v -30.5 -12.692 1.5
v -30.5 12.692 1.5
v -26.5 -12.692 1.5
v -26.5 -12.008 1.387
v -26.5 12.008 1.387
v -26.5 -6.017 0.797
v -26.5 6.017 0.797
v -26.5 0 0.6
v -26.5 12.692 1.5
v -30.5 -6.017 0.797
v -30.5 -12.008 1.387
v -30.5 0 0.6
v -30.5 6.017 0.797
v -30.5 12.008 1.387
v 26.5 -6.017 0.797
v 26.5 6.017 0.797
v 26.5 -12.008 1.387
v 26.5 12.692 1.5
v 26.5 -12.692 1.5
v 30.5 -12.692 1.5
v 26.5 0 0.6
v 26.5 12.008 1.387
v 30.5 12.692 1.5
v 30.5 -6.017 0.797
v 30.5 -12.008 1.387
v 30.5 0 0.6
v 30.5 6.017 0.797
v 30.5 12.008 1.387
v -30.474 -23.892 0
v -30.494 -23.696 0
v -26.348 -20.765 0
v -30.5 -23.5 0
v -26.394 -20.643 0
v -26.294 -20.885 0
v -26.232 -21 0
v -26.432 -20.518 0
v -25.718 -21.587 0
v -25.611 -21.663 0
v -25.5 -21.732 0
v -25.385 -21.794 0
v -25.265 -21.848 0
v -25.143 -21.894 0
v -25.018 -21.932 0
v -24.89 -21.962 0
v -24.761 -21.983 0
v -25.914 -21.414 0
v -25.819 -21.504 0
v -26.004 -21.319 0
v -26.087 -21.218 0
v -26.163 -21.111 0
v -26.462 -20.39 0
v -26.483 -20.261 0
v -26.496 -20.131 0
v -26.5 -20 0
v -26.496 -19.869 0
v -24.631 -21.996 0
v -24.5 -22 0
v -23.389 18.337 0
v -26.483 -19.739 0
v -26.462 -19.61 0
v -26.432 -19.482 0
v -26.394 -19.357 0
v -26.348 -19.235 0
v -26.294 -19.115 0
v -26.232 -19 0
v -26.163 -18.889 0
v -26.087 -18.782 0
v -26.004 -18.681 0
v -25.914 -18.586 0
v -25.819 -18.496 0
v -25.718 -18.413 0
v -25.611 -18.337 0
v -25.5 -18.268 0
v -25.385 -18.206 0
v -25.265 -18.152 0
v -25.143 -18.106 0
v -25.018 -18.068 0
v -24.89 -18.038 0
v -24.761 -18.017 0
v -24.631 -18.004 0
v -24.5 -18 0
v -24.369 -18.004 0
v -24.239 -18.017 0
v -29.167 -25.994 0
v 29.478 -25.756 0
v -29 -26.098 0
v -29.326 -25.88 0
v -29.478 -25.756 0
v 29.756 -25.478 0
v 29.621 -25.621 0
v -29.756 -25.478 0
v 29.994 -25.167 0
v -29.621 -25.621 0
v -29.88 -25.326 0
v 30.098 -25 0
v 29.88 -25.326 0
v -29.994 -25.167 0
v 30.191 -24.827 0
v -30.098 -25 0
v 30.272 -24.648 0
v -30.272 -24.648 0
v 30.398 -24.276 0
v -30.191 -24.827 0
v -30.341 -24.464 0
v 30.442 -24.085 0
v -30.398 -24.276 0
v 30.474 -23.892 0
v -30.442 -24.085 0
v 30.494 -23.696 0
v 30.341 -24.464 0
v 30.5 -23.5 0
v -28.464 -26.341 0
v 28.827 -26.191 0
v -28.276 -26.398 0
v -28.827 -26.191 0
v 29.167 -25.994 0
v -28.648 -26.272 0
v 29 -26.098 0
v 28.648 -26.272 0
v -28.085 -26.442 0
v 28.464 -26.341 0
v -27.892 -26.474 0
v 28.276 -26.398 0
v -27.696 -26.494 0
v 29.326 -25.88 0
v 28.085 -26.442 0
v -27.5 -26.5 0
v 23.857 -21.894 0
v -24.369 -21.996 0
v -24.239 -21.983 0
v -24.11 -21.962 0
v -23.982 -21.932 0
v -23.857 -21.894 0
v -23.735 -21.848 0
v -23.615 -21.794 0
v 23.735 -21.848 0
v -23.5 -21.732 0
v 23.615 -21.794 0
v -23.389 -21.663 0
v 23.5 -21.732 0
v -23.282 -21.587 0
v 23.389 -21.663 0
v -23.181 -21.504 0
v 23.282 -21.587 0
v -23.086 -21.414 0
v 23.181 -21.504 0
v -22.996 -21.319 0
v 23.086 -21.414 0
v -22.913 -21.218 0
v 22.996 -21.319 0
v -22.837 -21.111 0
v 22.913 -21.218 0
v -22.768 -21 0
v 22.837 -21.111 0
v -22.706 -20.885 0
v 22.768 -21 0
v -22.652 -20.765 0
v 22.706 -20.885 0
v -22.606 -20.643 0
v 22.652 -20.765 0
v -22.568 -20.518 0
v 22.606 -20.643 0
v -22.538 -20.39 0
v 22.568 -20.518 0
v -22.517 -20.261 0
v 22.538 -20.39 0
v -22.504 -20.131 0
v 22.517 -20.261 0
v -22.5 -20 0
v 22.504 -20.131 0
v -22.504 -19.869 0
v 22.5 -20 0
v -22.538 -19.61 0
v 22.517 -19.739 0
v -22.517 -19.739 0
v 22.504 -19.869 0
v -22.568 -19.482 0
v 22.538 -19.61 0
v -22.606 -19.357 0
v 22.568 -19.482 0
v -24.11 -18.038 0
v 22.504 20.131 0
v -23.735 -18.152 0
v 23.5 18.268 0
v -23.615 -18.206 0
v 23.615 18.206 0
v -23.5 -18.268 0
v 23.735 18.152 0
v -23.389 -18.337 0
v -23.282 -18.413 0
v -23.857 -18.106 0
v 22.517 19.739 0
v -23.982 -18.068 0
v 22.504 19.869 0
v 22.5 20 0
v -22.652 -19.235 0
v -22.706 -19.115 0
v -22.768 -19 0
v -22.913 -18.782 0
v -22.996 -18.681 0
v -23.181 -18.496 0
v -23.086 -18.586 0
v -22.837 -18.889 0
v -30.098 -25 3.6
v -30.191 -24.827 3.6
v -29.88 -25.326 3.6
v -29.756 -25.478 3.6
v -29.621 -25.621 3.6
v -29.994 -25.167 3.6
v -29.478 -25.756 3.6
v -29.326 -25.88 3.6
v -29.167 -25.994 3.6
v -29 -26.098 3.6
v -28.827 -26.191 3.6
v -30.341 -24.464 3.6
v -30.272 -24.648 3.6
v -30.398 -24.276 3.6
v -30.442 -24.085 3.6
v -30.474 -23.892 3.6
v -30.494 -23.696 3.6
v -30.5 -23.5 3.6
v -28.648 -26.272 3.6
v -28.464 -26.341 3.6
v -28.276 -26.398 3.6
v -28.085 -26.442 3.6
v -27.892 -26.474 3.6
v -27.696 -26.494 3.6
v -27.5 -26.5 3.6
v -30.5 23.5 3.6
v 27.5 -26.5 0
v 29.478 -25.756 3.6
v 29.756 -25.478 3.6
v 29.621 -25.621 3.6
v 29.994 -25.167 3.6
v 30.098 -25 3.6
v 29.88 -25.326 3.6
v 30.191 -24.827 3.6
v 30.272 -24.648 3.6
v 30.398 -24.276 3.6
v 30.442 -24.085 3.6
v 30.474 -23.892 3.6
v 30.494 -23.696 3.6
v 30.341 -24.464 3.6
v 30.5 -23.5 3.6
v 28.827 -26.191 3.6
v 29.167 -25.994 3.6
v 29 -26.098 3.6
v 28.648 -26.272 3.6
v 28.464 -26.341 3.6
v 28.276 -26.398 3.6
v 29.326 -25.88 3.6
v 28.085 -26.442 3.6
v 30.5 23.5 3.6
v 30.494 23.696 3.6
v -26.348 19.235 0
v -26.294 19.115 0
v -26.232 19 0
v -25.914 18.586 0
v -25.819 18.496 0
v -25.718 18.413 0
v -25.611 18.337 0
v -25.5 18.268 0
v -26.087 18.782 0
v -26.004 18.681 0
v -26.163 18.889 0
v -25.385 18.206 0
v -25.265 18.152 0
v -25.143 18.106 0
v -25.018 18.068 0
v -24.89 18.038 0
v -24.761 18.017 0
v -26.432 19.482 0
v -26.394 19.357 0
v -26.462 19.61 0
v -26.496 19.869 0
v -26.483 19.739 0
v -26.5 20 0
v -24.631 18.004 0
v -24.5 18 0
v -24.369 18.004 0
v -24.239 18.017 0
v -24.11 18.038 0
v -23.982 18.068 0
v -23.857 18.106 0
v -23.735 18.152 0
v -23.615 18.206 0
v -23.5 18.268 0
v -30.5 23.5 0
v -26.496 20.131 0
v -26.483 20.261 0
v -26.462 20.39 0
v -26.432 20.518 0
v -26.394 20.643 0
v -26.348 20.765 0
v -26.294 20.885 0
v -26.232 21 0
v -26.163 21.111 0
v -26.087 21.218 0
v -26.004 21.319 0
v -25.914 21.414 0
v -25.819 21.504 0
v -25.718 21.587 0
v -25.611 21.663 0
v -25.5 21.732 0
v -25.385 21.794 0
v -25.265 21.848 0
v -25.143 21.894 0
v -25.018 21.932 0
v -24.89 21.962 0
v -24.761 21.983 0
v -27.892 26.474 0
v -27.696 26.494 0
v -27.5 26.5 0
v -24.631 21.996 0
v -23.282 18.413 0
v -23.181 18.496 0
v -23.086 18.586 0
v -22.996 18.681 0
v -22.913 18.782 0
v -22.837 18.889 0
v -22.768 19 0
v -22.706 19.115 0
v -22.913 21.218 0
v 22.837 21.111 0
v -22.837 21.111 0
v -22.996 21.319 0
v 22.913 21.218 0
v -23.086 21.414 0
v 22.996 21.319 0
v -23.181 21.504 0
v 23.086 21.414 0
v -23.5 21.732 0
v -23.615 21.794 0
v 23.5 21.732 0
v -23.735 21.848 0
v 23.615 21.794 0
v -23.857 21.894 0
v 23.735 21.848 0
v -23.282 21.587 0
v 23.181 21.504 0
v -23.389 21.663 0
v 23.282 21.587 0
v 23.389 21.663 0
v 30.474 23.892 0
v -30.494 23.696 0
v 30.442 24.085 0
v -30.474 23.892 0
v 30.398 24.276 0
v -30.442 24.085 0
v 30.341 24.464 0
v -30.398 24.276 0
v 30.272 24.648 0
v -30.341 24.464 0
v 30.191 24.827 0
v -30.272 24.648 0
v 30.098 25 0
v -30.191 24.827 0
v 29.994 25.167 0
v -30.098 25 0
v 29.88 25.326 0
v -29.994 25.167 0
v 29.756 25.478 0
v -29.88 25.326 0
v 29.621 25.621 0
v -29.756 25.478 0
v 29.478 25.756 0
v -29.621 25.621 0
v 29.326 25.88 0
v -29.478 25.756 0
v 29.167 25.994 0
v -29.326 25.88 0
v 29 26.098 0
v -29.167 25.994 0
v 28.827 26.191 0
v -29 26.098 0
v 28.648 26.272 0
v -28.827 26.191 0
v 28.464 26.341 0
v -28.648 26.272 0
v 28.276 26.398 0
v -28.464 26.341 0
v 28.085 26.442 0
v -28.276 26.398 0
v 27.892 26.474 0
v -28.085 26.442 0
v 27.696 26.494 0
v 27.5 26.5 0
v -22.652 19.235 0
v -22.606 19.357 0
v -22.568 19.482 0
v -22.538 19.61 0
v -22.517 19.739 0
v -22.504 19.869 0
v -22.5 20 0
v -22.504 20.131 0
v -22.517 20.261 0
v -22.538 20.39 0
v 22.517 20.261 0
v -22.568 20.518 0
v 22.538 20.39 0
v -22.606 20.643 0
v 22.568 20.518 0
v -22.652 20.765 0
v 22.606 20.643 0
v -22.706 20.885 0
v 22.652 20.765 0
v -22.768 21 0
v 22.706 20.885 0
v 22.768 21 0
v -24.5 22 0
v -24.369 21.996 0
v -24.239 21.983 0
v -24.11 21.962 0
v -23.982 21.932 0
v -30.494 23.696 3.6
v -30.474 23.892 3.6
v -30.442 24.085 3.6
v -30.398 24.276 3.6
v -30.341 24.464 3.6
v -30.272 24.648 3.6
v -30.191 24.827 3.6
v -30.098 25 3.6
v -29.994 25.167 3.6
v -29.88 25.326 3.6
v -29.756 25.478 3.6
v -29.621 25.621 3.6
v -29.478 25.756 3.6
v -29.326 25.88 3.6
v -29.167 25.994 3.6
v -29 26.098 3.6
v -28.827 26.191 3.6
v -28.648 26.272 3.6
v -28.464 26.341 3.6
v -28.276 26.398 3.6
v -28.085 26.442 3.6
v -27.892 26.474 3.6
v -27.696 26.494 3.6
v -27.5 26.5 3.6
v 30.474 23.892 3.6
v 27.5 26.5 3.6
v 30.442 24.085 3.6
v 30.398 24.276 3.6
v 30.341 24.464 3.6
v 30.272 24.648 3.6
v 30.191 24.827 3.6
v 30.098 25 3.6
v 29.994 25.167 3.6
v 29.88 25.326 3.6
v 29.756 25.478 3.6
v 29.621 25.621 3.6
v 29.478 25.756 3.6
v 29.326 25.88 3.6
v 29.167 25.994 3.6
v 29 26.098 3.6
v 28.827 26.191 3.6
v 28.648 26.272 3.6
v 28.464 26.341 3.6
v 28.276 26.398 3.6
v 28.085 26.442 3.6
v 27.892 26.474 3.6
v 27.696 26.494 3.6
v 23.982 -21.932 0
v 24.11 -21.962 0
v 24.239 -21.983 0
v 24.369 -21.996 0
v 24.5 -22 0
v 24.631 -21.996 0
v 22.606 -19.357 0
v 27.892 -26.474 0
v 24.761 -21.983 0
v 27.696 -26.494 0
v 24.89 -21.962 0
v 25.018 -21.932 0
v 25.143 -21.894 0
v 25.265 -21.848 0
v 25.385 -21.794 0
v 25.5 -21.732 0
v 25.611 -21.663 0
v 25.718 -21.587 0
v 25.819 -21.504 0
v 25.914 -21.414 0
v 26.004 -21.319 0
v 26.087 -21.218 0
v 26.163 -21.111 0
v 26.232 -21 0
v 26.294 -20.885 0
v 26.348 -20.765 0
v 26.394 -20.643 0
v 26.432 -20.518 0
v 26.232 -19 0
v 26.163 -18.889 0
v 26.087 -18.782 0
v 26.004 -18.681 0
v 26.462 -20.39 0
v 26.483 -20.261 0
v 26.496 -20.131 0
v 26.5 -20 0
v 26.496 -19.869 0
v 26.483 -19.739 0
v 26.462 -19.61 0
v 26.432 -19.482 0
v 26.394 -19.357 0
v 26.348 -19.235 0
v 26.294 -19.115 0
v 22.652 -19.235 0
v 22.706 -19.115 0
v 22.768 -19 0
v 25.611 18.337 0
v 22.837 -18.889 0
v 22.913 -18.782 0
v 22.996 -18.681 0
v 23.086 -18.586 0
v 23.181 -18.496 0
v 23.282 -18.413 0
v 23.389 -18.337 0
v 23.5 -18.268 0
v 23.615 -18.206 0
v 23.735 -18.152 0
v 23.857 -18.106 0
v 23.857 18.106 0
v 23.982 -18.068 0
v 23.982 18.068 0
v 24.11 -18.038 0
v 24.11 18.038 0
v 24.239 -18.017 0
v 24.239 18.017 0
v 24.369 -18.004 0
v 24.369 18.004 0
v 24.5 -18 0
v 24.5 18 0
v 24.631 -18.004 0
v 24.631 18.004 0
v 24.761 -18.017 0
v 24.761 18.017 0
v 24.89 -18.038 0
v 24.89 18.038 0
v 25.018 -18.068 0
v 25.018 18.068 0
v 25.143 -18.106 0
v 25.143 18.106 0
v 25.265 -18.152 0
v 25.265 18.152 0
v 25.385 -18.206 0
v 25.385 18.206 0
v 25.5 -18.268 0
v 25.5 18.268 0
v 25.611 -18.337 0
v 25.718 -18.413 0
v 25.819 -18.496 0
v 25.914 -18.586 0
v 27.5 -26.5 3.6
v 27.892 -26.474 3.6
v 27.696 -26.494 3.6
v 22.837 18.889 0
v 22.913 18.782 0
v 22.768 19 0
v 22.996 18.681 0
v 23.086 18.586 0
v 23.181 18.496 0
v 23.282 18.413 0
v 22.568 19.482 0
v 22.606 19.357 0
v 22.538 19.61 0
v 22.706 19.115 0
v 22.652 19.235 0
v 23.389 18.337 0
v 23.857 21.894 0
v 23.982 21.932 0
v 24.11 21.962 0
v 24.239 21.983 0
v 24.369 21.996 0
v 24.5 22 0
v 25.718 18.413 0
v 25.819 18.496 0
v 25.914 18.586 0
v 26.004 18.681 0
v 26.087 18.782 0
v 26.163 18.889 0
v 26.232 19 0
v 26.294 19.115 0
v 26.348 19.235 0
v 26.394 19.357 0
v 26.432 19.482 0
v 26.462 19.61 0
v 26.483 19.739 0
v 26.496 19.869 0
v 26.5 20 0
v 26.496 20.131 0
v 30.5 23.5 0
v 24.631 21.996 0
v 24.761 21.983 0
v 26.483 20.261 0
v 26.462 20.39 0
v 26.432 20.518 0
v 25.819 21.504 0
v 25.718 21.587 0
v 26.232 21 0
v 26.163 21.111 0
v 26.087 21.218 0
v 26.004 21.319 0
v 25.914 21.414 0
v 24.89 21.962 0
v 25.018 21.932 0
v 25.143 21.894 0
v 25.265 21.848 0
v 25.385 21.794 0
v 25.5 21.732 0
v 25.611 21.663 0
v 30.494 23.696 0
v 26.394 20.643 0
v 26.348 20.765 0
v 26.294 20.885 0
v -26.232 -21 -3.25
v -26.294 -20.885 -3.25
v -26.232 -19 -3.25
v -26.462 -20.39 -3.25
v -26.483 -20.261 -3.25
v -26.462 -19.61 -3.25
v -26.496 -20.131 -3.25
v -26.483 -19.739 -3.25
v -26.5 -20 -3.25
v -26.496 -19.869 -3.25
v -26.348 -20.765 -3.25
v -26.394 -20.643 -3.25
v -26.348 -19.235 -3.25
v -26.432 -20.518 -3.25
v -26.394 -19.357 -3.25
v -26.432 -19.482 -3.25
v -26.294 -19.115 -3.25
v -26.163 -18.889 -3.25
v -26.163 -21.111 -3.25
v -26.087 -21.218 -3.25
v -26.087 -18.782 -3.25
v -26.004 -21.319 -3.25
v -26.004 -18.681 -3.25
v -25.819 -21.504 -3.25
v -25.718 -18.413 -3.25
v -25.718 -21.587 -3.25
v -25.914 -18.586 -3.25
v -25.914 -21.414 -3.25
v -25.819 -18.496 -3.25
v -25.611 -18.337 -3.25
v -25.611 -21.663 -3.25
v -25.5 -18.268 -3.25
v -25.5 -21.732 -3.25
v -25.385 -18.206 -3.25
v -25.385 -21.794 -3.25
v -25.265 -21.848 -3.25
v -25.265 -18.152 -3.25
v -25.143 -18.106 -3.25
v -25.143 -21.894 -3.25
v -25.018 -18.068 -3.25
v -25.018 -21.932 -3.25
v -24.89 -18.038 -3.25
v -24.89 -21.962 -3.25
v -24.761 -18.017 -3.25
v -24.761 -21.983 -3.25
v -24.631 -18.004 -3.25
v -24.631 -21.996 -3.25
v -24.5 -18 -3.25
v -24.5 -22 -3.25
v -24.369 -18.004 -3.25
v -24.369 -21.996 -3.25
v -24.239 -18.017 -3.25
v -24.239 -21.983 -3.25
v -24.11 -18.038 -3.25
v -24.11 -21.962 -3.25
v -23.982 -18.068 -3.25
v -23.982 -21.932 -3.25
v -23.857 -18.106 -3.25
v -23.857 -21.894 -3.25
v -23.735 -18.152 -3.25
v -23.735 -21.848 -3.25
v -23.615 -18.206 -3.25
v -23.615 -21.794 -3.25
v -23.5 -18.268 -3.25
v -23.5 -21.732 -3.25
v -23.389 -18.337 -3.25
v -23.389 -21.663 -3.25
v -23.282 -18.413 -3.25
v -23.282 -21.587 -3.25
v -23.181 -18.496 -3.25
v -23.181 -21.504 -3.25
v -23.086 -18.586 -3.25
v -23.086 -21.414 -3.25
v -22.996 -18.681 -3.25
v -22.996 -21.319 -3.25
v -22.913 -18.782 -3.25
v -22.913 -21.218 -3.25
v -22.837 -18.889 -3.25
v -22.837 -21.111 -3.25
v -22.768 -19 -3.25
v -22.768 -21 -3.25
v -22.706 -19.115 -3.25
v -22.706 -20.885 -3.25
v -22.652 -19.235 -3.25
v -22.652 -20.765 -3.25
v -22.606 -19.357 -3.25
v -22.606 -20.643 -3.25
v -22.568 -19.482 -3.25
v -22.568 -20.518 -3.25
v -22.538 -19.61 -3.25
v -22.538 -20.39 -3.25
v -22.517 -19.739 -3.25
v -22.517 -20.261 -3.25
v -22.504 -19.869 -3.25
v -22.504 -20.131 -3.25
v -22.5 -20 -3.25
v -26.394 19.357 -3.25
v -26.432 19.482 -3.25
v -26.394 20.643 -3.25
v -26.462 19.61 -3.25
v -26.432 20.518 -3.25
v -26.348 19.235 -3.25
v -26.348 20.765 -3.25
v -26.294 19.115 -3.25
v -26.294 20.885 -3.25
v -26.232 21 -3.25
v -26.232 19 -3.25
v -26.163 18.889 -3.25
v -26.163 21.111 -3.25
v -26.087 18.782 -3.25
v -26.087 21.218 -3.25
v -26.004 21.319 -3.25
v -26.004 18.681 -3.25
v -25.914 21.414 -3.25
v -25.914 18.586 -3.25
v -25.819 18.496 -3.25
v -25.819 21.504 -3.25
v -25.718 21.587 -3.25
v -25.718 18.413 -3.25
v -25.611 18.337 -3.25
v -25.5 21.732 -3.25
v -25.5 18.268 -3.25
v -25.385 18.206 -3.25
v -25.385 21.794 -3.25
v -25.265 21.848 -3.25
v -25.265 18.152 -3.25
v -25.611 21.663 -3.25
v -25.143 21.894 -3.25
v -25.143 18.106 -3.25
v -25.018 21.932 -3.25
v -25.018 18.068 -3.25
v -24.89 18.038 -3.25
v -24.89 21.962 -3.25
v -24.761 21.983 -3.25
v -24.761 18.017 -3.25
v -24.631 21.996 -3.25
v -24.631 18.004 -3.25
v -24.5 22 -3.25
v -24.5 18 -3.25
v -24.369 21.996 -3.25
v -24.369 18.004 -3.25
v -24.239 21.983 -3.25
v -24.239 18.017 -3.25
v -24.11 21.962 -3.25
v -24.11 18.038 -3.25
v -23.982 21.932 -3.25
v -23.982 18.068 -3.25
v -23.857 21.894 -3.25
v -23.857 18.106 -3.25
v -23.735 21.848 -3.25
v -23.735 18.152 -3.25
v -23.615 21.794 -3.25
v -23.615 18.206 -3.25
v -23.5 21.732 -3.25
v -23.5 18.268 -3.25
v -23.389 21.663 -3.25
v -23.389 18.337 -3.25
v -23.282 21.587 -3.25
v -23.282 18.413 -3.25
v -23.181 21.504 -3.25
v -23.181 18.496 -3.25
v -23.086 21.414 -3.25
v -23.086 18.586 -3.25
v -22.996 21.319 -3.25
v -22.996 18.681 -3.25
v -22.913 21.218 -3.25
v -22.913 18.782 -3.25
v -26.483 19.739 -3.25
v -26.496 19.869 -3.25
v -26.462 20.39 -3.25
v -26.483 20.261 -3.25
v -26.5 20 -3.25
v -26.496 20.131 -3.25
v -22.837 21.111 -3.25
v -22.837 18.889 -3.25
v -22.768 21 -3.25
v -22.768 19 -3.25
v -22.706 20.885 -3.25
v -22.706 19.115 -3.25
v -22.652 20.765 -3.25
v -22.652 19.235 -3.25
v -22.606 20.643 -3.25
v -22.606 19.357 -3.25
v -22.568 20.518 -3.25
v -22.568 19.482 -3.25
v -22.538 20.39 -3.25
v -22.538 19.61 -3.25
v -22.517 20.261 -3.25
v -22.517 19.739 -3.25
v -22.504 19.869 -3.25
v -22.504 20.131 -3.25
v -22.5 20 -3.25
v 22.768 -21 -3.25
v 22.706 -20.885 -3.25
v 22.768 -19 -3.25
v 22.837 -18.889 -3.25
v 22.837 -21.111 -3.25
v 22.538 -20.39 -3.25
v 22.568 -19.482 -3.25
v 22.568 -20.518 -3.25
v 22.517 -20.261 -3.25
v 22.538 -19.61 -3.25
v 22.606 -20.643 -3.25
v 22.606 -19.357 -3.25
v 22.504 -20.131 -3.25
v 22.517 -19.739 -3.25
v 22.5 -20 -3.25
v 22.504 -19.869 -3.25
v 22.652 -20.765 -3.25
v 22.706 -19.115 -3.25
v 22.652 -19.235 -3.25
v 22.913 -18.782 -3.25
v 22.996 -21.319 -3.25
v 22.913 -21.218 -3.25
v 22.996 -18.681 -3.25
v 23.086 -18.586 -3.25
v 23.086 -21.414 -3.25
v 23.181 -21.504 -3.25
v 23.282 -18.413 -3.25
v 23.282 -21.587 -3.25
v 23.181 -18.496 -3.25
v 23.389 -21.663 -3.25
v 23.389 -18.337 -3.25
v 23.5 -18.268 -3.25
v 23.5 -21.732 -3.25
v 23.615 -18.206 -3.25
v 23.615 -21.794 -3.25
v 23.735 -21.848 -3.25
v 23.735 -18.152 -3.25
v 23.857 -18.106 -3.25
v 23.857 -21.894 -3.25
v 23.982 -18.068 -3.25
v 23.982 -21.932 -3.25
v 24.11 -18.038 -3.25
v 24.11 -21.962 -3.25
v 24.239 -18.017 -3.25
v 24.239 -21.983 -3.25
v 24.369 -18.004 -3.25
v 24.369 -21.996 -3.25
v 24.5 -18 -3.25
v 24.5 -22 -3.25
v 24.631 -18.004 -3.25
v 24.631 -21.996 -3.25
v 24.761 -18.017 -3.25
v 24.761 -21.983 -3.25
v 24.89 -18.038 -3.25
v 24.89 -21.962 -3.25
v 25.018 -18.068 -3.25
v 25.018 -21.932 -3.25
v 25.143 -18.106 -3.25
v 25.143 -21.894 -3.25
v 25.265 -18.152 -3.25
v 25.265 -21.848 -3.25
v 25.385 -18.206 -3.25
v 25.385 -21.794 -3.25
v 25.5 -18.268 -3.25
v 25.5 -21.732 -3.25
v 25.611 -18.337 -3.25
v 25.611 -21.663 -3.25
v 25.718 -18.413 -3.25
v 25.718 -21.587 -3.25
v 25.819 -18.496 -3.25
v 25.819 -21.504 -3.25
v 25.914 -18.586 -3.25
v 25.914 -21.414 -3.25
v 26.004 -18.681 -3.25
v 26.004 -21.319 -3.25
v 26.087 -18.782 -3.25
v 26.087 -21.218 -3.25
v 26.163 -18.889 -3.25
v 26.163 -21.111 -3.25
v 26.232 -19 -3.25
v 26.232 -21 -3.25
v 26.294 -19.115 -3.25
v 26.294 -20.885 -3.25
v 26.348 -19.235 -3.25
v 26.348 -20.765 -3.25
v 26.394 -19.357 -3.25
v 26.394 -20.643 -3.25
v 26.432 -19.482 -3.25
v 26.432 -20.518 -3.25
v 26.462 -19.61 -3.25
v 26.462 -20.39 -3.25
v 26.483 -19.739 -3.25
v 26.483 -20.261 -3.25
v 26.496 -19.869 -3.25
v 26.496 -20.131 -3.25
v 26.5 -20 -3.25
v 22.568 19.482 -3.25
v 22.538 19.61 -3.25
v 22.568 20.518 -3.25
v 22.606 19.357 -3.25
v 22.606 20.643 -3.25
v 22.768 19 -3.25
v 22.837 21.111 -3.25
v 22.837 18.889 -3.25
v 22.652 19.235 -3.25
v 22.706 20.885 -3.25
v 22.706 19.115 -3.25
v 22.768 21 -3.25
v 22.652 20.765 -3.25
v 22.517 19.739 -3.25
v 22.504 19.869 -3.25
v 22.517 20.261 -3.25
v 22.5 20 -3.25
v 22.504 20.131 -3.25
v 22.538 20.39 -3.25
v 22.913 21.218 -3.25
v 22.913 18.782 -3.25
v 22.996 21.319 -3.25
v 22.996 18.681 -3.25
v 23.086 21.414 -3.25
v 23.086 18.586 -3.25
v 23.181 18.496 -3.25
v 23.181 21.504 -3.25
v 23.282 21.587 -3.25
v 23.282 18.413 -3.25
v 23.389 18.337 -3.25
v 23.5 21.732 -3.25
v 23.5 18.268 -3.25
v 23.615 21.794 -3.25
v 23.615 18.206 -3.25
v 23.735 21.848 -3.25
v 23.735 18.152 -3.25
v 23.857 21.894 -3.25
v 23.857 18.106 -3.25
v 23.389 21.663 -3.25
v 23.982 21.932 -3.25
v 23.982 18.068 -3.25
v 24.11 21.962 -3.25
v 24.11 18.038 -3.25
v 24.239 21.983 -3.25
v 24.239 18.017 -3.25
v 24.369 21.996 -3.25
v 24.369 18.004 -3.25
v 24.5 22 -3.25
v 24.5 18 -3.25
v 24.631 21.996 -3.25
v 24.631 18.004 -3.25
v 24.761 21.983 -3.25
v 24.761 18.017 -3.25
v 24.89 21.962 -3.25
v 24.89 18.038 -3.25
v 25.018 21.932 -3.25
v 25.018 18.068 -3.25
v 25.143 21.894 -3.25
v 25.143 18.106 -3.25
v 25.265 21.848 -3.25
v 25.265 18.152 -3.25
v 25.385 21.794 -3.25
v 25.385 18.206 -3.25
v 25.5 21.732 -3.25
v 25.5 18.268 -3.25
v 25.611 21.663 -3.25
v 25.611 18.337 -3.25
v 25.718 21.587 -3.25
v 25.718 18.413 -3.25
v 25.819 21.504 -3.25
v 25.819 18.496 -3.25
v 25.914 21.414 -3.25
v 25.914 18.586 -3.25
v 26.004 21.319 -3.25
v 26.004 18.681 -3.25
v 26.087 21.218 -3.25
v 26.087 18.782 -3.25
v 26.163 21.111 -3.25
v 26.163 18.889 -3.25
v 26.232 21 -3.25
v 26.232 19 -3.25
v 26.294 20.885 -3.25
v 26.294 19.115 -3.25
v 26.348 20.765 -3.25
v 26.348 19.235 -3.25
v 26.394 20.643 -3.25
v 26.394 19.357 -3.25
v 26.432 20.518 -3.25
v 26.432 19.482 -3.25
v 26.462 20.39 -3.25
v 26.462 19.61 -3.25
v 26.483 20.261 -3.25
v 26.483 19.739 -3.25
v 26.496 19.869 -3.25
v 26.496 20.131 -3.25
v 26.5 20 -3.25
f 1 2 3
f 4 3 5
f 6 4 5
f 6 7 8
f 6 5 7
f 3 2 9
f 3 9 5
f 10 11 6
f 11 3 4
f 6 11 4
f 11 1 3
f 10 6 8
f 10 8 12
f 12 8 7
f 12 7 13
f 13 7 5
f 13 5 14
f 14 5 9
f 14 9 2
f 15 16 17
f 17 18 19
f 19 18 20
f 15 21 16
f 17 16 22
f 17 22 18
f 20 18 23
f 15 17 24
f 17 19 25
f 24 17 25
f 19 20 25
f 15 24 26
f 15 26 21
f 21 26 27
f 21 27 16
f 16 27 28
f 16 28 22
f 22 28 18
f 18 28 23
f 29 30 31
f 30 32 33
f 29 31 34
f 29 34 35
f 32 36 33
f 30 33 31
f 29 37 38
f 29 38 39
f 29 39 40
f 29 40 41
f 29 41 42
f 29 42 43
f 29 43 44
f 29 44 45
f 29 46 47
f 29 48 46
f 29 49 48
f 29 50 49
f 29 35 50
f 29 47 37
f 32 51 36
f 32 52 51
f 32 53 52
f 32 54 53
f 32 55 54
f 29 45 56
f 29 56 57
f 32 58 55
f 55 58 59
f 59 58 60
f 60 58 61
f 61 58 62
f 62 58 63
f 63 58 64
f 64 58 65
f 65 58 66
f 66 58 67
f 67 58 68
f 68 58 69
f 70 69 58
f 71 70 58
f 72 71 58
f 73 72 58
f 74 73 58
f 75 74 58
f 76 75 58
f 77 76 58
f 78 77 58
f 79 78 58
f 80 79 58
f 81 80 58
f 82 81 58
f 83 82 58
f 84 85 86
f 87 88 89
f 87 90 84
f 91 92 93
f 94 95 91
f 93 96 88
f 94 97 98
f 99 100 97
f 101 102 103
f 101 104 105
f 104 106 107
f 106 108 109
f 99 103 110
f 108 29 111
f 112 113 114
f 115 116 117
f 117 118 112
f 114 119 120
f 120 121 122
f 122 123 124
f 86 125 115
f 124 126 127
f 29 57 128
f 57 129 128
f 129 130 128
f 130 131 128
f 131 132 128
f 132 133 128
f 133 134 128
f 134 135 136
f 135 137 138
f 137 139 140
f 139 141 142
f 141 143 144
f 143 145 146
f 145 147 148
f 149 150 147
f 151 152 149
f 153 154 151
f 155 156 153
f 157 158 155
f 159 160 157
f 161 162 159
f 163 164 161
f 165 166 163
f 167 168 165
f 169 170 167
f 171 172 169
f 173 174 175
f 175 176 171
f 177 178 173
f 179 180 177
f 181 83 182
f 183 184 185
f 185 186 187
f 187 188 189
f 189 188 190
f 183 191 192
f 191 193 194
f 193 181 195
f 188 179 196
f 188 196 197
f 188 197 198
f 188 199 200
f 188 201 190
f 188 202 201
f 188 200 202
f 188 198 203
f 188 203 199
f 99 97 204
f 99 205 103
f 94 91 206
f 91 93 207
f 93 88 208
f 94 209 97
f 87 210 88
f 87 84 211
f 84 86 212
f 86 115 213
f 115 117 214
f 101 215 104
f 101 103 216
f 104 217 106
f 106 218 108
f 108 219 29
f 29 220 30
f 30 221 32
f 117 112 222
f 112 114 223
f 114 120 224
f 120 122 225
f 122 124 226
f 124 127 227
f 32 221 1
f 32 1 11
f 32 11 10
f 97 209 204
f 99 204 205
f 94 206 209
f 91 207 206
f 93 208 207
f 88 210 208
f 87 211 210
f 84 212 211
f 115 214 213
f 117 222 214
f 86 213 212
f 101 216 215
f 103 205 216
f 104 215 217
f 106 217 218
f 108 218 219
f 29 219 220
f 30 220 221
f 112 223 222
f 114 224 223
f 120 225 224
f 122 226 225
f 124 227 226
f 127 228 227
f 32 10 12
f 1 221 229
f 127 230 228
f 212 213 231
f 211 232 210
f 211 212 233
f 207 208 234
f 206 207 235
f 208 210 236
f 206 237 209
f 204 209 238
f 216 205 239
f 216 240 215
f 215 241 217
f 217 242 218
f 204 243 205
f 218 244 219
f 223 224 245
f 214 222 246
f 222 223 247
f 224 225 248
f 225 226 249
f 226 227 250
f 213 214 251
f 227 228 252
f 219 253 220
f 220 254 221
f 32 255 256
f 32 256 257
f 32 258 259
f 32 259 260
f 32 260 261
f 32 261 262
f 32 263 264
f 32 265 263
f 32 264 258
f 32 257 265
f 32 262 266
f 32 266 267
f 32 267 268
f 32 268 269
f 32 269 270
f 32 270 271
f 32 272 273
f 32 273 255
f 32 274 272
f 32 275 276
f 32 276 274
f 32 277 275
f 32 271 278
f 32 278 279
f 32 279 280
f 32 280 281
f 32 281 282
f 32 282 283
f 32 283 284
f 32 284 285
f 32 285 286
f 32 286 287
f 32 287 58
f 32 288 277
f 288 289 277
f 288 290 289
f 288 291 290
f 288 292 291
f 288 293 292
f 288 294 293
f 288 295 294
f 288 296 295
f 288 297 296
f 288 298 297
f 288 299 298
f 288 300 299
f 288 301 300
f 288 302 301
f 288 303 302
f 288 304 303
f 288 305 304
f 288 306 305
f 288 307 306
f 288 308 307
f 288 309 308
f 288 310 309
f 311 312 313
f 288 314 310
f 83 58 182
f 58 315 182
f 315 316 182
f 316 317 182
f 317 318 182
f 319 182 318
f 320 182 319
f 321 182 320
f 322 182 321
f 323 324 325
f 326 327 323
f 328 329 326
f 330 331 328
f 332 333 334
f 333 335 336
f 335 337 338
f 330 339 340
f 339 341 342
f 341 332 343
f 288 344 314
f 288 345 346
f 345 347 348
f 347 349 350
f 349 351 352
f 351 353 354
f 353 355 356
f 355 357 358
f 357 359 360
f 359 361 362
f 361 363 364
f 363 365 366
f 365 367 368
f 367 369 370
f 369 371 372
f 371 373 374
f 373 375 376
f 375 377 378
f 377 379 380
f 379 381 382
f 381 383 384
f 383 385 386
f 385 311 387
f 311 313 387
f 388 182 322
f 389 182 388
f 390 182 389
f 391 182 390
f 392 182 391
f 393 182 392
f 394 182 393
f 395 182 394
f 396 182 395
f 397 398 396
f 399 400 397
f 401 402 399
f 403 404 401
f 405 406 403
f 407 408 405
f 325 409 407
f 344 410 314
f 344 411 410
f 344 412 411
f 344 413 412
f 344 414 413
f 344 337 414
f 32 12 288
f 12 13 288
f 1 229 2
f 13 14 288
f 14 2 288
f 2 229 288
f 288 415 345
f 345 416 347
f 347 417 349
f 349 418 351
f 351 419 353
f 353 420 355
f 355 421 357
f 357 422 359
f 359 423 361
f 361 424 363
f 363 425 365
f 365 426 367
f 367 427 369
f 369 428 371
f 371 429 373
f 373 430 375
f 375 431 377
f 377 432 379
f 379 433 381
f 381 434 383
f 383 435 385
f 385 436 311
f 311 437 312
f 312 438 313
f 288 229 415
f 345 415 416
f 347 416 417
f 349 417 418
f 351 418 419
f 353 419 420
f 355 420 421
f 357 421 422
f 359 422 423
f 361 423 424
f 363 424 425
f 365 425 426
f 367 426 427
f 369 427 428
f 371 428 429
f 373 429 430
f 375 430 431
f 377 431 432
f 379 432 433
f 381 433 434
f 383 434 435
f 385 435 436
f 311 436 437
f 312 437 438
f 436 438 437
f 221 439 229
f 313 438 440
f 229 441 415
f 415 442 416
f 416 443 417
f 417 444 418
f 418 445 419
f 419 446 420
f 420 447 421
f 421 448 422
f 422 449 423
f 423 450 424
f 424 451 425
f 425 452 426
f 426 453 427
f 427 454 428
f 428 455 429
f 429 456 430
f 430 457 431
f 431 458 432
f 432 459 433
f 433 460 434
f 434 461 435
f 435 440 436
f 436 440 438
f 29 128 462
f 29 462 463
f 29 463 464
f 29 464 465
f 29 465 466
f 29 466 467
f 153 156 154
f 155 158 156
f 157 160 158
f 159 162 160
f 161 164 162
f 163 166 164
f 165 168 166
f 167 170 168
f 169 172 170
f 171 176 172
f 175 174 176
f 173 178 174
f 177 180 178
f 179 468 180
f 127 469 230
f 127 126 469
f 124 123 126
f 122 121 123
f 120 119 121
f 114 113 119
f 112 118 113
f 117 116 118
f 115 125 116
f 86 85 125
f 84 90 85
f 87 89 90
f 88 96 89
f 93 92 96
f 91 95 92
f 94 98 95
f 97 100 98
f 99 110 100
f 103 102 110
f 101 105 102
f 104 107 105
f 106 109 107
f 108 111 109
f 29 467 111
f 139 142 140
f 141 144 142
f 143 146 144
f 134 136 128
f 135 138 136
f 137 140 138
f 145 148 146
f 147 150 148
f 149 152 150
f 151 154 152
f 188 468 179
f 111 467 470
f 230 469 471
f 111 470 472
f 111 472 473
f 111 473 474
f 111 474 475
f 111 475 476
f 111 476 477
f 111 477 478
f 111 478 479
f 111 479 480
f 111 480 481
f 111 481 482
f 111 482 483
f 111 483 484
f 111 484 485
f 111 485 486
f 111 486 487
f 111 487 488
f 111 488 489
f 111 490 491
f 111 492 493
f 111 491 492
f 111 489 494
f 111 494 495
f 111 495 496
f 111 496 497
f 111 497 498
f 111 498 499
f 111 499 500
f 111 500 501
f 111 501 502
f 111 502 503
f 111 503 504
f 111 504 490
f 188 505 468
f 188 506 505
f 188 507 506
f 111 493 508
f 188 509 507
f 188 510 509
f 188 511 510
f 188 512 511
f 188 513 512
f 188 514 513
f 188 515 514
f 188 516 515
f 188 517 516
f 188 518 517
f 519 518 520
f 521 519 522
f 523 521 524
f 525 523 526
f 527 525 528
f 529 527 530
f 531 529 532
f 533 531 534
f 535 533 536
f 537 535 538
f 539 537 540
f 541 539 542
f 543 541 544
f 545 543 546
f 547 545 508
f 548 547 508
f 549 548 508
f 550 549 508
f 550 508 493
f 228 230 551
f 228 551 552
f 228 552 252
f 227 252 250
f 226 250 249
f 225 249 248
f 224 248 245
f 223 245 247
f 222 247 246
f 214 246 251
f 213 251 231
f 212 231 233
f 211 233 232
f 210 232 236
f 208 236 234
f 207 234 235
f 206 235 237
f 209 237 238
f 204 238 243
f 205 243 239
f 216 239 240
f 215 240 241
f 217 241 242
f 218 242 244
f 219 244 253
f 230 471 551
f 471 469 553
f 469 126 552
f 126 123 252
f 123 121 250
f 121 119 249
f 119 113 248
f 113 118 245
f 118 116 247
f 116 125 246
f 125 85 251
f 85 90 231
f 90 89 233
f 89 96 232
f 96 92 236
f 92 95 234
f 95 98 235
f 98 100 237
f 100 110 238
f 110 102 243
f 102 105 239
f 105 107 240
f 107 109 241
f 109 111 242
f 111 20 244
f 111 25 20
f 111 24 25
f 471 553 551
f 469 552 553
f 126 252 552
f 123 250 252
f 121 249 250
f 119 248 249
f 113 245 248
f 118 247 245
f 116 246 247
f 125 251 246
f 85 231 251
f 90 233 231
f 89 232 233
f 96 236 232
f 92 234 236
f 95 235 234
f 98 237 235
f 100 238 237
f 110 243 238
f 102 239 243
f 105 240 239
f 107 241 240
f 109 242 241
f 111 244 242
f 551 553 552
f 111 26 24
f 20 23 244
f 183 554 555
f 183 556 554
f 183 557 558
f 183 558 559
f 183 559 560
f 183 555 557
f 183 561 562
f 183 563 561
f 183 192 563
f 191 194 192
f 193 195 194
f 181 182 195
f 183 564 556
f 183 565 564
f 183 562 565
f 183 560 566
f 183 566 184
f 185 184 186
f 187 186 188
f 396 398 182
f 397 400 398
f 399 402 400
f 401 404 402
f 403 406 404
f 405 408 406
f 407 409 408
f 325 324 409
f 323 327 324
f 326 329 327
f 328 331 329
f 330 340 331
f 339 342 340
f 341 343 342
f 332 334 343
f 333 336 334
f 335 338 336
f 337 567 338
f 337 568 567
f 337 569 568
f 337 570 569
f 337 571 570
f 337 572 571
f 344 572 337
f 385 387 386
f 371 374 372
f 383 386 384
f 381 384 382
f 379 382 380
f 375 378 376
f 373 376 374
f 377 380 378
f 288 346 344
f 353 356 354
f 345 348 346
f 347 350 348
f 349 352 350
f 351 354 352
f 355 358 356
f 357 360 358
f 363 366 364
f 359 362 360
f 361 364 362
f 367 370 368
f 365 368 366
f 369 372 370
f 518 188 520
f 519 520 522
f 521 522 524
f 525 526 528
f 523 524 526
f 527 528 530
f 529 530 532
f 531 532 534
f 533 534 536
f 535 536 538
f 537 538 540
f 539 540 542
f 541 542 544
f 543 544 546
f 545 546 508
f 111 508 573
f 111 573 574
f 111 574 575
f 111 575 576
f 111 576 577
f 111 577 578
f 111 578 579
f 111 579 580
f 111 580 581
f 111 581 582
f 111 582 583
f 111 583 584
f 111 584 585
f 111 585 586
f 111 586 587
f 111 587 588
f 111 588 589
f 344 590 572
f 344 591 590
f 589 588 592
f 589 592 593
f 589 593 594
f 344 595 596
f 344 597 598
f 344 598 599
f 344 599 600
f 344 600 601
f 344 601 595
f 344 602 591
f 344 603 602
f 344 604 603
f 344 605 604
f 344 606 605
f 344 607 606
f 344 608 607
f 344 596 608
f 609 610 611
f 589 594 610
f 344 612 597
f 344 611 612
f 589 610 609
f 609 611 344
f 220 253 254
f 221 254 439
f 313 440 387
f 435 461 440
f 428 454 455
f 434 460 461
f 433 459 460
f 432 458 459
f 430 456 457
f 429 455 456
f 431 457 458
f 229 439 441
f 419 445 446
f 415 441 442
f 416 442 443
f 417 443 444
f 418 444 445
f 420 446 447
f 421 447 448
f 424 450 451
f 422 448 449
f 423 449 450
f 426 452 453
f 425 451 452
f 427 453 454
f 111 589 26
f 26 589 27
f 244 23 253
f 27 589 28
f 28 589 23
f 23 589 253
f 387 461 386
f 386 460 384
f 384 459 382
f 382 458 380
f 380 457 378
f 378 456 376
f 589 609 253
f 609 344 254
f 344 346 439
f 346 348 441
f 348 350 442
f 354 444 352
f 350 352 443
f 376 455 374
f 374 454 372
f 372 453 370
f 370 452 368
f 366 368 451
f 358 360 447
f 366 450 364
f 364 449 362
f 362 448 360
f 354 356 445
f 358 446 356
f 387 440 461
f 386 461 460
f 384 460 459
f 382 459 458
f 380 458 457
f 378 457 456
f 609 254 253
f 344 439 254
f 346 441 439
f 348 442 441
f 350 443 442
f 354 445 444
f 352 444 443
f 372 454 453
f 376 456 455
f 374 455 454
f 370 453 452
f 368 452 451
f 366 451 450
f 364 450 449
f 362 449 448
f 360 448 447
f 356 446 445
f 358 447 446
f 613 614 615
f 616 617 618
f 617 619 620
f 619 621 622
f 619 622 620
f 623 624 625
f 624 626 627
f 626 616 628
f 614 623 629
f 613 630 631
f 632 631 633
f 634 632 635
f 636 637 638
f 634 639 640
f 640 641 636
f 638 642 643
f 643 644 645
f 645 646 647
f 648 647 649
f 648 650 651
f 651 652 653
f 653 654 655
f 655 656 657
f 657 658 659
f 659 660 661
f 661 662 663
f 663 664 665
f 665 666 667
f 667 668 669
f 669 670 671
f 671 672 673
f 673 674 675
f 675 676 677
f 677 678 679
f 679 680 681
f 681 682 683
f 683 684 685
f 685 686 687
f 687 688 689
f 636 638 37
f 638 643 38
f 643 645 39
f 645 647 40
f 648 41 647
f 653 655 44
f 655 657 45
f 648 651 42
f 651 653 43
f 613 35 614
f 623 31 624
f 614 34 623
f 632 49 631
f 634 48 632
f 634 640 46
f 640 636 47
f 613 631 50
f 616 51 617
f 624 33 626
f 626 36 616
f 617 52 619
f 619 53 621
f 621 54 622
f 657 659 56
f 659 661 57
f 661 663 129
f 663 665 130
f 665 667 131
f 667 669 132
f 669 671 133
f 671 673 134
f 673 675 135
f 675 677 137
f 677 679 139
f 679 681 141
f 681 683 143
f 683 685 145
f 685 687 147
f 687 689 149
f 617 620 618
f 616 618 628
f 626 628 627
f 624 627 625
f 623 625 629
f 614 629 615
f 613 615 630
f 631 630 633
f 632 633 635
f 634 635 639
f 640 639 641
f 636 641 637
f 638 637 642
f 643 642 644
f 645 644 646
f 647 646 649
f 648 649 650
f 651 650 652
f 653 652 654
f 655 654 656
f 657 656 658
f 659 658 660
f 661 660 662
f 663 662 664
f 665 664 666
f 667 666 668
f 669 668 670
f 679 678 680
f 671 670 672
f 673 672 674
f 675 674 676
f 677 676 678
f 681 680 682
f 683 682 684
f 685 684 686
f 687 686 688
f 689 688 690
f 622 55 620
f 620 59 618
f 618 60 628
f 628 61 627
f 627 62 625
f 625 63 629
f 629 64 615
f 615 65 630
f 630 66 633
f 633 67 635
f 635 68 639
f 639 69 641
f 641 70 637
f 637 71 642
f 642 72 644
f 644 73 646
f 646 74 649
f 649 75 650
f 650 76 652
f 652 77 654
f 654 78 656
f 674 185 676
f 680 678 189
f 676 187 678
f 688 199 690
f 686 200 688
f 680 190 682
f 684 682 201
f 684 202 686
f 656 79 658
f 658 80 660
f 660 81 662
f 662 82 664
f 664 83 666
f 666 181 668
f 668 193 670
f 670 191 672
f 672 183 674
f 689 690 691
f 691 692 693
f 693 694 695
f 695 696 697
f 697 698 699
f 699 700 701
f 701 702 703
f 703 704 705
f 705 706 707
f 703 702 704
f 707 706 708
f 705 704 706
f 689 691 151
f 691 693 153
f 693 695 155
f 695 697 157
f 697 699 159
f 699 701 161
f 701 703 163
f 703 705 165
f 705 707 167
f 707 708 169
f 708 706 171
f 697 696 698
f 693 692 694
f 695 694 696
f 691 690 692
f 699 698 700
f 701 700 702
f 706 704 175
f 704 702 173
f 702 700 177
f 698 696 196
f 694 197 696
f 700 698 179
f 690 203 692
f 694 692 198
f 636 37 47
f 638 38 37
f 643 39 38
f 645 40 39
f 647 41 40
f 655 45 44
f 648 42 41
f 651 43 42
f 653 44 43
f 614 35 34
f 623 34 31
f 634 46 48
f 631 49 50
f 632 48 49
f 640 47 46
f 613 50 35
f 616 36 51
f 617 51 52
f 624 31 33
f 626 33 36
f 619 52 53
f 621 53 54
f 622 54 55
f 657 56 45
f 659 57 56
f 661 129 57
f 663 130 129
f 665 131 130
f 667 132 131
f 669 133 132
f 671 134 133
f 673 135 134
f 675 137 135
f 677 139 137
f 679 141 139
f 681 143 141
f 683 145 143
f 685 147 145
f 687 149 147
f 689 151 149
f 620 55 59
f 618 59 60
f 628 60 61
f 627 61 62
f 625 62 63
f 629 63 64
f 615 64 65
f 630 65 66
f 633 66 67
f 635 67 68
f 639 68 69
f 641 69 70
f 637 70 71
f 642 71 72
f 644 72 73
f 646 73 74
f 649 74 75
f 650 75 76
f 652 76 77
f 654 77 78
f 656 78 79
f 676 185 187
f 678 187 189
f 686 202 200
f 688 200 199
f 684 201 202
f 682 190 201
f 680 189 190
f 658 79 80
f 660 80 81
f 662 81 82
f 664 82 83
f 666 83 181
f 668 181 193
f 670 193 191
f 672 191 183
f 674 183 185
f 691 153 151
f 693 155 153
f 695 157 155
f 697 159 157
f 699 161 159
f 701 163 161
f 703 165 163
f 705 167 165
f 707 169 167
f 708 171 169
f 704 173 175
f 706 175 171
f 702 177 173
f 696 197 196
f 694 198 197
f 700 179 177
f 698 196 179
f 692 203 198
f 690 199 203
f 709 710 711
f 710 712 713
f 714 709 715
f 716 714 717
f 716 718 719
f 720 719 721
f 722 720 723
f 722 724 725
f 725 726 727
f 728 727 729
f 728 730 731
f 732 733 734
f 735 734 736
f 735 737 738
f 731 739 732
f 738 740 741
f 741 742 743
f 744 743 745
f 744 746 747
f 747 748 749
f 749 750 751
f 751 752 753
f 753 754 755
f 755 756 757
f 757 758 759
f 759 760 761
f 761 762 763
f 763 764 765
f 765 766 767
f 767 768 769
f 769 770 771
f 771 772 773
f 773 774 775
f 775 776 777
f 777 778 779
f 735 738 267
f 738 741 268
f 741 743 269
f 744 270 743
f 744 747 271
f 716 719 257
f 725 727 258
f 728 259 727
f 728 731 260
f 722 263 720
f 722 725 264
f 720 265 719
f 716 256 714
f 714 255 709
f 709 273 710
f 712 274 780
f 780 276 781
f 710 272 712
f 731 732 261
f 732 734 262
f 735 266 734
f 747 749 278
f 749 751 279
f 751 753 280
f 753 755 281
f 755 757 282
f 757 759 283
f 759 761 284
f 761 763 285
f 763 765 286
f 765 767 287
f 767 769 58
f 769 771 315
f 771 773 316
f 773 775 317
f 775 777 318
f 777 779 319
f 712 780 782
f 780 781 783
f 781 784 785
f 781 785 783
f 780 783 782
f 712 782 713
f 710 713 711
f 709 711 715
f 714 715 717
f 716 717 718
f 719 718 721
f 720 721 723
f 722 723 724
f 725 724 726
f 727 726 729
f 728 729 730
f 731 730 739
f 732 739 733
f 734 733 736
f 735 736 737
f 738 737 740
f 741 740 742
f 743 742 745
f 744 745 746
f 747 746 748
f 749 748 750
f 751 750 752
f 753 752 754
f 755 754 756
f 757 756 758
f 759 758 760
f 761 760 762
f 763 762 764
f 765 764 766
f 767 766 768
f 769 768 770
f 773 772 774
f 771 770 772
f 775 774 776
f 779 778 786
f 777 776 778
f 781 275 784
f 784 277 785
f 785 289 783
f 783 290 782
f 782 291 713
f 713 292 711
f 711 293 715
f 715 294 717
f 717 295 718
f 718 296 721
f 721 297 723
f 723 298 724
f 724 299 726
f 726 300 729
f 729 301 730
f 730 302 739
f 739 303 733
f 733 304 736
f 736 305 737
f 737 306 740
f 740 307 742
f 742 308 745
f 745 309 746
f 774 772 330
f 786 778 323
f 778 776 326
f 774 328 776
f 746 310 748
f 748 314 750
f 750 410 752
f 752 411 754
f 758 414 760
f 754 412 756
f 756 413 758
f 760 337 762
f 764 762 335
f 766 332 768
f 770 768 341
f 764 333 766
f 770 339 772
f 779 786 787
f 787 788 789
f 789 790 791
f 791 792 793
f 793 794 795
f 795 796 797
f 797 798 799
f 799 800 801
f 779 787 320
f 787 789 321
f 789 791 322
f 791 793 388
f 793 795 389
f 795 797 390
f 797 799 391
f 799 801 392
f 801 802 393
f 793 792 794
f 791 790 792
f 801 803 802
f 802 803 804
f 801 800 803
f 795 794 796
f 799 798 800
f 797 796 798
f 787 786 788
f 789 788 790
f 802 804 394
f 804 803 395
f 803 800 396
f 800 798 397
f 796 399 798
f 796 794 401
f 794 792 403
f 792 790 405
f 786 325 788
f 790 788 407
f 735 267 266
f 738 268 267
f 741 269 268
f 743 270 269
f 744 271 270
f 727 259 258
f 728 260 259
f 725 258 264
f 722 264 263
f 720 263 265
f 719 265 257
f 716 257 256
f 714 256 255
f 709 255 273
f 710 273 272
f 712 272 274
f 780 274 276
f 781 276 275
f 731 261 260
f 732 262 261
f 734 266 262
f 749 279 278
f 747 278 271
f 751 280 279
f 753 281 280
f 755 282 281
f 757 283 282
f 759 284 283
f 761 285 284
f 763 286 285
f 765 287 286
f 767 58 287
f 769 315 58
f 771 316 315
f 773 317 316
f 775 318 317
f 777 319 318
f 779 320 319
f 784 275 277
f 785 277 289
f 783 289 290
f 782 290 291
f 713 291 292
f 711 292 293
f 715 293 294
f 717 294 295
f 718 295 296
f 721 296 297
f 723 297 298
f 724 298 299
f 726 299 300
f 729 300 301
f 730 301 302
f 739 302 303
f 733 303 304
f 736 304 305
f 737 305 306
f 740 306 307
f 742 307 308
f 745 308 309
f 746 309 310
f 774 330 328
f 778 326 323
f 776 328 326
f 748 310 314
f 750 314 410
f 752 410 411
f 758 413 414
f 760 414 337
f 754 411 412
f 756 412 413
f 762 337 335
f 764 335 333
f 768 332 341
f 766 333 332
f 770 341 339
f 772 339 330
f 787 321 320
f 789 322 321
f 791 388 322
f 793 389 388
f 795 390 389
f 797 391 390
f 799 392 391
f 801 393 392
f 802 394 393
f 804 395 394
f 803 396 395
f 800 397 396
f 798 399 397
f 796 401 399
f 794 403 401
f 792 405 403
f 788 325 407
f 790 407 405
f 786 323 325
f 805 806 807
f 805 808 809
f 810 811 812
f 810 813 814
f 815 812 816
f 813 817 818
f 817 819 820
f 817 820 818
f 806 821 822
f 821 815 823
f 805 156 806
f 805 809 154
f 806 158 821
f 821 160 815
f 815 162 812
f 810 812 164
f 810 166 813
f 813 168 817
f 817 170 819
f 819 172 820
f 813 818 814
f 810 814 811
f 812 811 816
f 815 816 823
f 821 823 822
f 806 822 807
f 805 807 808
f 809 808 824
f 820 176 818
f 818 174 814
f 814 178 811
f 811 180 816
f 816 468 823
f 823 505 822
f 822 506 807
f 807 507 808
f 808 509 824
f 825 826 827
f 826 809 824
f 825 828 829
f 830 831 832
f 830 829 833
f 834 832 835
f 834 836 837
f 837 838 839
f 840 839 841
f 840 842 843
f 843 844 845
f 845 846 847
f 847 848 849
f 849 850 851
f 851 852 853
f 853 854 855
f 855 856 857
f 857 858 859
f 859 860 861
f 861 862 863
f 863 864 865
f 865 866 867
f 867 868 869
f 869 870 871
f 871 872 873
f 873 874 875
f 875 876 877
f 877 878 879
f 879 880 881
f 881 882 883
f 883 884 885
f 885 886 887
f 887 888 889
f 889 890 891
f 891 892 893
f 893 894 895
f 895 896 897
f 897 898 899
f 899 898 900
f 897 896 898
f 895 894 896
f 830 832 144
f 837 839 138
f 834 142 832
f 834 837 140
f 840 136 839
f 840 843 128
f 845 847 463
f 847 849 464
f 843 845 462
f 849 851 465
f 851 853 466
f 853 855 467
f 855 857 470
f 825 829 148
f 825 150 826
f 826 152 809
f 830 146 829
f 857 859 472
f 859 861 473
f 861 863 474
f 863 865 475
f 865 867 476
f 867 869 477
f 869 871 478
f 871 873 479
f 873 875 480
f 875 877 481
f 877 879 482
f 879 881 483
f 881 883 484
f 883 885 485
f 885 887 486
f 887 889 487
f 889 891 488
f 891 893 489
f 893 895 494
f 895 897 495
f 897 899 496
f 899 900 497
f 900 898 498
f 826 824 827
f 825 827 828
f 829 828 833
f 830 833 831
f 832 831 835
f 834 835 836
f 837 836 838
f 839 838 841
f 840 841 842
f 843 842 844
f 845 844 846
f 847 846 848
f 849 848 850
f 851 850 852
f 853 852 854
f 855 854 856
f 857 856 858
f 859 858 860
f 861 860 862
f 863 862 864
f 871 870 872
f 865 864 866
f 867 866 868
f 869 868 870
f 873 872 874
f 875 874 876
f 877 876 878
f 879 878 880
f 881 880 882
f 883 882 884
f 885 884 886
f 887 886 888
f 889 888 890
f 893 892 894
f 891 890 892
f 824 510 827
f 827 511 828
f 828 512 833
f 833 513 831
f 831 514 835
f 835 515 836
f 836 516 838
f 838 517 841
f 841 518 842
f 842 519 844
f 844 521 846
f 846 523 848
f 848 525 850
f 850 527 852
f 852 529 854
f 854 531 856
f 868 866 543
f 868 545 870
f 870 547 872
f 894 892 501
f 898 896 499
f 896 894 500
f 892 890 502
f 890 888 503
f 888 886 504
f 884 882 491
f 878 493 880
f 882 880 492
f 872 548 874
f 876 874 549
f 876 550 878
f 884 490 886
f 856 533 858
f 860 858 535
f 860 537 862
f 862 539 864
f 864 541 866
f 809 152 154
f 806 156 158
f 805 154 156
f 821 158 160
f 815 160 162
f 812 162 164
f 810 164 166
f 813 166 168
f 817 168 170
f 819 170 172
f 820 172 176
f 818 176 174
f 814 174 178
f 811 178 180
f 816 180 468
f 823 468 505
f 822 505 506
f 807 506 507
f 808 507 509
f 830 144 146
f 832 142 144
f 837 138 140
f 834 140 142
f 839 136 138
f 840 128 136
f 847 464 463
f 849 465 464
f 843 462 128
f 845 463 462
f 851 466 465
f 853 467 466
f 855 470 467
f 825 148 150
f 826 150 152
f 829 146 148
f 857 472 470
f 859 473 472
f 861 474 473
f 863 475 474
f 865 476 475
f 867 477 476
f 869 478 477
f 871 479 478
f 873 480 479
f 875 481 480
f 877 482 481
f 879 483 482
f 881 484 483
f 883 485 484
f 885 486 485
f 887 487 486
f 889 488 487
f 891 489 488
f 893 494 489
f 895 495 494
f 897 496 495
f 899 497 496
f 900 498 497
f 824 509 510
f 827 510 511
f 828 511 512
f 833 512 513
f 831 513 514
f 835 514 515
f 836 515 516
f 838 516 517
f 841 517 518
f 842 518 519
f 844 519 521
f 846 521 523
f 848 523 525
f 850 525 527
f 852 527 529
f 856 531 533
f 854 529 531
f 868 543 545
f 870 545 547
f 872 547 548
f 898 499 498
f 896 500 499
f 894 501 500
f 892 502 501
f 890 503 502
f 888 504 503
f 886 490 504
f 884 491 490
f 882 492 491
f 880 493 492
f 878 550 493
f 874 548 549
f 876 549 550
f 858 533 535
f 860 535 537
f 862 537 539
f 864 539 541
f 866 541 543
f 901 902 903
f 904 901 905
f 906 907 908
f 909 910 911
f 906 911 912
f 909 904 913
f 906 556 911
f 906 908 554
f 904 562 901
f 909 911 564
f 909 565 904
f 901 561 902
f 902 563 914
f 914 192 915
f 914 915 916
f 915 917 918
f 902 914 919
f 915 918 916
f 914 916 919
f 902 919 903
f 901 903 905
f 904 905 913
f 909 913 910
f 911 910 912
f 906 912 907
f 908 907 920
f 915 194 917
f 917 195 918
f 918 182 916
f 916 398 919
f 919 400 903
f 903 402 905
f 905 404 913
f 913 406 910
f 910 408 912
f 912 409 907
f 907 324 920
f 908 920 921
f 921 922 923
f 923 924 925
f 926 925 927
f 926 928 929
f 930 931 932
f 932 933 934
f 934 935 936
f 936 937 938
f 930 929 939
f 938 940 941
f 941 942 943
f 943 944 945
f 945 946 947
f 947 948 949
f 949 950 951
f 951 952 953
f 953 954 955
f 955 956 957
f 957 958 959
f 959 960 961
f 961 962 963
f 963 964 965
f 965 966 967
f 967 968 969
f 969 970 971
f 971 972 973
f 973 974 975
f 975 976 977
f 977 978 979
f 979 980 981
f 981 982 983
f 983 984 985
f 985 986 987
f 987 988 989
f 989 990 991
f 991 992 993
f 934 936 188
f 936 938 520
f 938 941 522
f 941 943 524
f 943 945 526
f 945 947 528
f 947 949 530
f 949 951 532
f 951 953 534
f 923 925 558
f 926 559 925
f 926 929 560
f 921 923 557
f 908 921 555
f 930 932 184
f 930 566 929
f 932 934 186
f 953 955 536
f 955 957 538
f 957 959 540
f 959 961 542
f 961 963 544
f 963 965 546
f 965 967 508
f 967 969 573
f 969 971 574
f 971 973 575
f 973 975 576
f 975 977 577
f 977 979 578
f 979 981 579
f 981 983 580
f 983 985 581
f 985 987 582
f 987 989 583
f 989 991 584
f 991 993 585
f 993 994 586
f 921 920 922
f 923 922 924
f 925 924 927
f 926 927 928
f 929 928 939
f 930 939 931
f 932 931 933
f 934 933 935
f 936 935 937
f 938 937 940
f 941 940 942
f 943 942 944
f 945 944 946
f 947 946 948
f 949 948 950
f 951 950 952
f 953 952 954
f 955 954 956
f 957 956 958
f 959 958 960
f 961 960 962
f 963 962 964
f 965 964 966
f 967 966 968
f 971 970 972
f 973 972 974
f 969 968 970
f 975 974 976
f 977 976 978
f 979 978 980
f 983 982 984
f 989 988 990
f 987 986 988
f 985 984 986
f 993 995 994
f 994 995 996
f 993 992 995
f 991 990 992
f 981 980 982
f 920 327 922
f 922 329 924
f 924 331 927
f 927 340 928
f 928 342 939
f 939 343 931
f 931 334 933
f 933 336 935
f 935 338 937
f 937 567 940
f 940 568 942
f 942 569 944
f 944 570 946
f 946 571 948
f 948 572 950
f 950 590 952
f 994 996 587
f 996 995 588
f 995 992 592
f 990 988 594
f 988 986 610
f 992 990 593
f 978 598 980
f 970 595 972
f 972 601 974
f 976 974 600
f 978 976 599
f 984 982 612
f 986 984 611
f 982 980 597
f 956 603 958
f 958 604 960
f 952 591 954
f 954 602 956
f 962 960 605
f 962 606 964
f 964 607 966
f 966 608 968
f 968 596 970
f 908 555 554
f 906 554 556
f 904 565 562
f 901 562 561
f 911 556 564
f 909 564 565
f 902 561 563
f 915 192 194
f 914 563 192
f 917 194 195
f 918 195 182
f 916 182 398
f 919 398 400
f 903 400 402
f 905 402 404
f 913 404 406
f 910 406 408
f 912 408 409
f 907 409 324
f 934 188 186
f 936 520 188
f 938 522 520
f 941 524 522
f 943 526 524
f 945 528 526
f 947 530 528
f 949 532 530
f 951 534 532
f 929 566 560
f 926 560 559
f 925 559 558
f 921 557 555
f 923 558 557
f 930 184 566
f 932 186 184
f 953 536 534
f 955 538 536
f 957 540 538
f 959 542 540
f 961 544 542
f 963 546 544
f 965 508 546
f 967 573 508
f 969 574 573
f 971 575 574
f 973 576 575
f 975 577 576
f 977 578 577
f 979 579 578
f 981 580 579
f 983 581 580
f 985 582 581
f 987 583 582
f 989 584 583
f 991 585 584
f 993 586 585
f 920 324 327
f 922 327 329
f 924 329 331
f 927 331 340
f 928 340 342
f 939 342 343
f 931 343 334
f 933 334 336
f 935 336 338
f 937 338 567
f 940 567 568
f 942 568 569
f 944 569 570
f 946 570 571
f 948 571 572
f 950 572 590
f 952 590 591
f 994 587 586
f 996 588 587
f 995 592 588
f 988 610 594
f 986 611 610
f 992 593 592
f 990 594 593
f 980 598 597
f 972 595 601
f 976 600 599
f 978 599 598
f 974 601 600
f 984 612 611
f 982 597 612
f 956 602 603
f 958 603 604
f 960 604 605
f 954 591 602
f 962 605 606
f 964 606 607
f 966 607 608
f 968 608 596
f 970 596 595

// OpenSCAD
// Inland cardboard spool clip - unsleeved prototype
// Dimensions supplied by owner, October 2026.
$fn=96;
plate_w=61;                 // clear inside width
plate_l=53;                 // spans the 40 mm hole spacing with margins
plate_t=3.6;
corner_r=3;
spool_od=200;
flange_od=67;
flange_id=61;
flange_t=3;
hole_d=6;
hole_spacing=40;            // along the flange curve; prototype uses chord spacing
rim_offset=9;               // hole center in from outside edge
pin_d=4;
pin_len=3.5;
pin_clearance=0.25;
// Hole center from the clip centerline: half flange OD minus rim offset.
pin_x=flange_od/2-rim_offset; // 24.5 mm
// Shallow underside side relief follows the inner rim; intentionally symmetric.
inside_r=92;
relief_depth=3;
relief_r=inside_r;
module rounded_plate(){
  linear_extrude(plate_t)
    offset(r=corner_r)
      square([plate_w-2*corner_r,plate_l-2*corner_r],center=true);
}
module underside_rim_relief(){
  // Keep the label face and center flat; remove only the two side bands.
  for (s=[-1,1]) intersection(){
    translate([s*(plate_w/2-2),0,-0.01])
      cube([4,plate_l+2,relief_depth+0.02],center=true);
    translate([0,0,plate_t-relief_depth+relief_r])
      rotate([0,90,0]) cylinder(h=plate_w+4,r=relief_r,center=true);
  }
}
module pin(x,y){
  // Pins project from the underside into the cardboard flange holes.
  translate([x,y,-pin_len+pin_clearance])
    cylinder(h=pin_len,r=pin_d/2);
}
difference(){
  union(){
    difference(){rounded_plate(); underside_rim_relief();}
    for (x=[-pin_x,pin_x]) for (y=[-hole_spacing/2,hole_spacing/2]) pin(x,y);
  }
}
